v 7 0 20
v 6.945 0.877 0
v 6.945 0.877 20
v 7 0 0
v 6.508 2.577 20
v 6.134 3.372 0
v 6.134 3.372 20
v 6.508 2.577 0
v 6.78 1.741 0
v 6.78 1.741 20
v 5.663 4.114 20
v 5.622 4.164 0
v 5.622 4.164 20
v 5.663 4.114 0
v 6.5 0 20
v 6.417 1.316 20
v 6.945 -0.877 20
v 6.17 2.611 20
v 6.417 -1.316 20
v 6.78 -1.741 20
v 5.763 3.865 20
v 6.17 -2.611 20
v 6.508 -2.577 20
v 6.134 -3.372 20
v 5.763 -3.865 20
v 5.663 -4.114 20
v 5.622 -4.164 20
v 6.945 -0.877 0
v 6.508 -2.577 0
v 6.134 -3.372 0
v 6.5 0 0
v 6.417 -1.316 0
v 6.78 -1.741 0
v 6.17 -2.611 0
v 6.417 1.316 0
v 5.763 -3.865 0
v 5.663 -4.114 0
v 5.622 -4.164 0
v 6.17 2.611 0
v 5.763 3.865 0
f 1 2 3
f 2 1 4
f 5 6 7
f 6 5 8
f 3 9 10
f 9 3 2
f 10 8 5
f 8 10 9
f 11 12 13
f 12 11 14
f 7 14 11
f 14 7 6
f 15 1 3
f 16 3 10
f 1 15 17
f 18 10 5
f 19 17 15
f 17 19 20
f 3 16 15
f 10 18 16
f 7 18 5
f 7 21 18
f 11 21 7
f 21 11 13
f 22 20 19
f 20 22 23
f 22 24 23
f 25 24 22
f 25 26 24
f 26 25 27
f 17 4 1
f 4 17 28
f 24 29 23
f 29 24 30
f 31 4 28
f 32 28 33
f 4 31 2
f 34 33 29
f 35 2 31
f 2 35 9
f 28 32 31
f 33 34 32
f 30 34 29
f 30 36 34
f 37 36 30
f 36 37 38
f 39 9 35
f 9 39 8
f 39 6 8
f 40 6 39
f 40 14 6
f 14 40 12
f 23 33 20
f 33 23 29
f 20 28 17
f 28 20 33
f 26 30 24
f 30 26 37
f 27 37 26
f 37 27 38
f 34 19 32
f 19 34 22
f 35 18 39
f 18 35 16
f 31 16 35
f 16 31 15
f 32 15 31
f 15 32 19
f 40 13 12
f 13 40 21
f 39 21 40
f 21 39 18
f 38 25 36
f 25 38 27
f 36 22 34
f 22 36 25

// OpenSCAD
$fn = 50;


difference() {
	union() {
		cylinder(h = 20, r = 7.0000000000);
		translate(v = [-7.0000000000, 0, 0]) {
			cylinder(h = 20, r = 7.0000000000);
		}
	}
	union() {
		cylinder(h = 20, r = 3.2500000000);
		cylinder(h = 20, r = 1.8000000000);
		cylinder(h = 20, r = 1.8000000000);
		cylinder(h = 20, r = 1.8000000000);
		translate(v = [-11.5000000000, 0, 0]) {
			hull() {
				translate(v = [-3.7500000000, 0.0000000000, 0]) {
					cylinder(h = 20, r = 7.5000000000);
				}
				translate(v = [3.7500000000, 0.0000000000, 0]) {
					cylinder(h = 20, r = 7.5000000000);
				}
				translate(v = [-3.7500000000, -0.0000000000, 0]) {
					cylinder(h = 20, r = 7.5000000000);
				}
				translate(v = [3.7500000000, -0.0000000000, 0]) {
					cylinder(h = 20, r = 7.5000000000);
				}
			}
		}
		translate(v = [-4.0000000000, 0, 0.0000000000]) {
			cylinder(h = 20, r = 10.5000000000);
		}
	}
}
